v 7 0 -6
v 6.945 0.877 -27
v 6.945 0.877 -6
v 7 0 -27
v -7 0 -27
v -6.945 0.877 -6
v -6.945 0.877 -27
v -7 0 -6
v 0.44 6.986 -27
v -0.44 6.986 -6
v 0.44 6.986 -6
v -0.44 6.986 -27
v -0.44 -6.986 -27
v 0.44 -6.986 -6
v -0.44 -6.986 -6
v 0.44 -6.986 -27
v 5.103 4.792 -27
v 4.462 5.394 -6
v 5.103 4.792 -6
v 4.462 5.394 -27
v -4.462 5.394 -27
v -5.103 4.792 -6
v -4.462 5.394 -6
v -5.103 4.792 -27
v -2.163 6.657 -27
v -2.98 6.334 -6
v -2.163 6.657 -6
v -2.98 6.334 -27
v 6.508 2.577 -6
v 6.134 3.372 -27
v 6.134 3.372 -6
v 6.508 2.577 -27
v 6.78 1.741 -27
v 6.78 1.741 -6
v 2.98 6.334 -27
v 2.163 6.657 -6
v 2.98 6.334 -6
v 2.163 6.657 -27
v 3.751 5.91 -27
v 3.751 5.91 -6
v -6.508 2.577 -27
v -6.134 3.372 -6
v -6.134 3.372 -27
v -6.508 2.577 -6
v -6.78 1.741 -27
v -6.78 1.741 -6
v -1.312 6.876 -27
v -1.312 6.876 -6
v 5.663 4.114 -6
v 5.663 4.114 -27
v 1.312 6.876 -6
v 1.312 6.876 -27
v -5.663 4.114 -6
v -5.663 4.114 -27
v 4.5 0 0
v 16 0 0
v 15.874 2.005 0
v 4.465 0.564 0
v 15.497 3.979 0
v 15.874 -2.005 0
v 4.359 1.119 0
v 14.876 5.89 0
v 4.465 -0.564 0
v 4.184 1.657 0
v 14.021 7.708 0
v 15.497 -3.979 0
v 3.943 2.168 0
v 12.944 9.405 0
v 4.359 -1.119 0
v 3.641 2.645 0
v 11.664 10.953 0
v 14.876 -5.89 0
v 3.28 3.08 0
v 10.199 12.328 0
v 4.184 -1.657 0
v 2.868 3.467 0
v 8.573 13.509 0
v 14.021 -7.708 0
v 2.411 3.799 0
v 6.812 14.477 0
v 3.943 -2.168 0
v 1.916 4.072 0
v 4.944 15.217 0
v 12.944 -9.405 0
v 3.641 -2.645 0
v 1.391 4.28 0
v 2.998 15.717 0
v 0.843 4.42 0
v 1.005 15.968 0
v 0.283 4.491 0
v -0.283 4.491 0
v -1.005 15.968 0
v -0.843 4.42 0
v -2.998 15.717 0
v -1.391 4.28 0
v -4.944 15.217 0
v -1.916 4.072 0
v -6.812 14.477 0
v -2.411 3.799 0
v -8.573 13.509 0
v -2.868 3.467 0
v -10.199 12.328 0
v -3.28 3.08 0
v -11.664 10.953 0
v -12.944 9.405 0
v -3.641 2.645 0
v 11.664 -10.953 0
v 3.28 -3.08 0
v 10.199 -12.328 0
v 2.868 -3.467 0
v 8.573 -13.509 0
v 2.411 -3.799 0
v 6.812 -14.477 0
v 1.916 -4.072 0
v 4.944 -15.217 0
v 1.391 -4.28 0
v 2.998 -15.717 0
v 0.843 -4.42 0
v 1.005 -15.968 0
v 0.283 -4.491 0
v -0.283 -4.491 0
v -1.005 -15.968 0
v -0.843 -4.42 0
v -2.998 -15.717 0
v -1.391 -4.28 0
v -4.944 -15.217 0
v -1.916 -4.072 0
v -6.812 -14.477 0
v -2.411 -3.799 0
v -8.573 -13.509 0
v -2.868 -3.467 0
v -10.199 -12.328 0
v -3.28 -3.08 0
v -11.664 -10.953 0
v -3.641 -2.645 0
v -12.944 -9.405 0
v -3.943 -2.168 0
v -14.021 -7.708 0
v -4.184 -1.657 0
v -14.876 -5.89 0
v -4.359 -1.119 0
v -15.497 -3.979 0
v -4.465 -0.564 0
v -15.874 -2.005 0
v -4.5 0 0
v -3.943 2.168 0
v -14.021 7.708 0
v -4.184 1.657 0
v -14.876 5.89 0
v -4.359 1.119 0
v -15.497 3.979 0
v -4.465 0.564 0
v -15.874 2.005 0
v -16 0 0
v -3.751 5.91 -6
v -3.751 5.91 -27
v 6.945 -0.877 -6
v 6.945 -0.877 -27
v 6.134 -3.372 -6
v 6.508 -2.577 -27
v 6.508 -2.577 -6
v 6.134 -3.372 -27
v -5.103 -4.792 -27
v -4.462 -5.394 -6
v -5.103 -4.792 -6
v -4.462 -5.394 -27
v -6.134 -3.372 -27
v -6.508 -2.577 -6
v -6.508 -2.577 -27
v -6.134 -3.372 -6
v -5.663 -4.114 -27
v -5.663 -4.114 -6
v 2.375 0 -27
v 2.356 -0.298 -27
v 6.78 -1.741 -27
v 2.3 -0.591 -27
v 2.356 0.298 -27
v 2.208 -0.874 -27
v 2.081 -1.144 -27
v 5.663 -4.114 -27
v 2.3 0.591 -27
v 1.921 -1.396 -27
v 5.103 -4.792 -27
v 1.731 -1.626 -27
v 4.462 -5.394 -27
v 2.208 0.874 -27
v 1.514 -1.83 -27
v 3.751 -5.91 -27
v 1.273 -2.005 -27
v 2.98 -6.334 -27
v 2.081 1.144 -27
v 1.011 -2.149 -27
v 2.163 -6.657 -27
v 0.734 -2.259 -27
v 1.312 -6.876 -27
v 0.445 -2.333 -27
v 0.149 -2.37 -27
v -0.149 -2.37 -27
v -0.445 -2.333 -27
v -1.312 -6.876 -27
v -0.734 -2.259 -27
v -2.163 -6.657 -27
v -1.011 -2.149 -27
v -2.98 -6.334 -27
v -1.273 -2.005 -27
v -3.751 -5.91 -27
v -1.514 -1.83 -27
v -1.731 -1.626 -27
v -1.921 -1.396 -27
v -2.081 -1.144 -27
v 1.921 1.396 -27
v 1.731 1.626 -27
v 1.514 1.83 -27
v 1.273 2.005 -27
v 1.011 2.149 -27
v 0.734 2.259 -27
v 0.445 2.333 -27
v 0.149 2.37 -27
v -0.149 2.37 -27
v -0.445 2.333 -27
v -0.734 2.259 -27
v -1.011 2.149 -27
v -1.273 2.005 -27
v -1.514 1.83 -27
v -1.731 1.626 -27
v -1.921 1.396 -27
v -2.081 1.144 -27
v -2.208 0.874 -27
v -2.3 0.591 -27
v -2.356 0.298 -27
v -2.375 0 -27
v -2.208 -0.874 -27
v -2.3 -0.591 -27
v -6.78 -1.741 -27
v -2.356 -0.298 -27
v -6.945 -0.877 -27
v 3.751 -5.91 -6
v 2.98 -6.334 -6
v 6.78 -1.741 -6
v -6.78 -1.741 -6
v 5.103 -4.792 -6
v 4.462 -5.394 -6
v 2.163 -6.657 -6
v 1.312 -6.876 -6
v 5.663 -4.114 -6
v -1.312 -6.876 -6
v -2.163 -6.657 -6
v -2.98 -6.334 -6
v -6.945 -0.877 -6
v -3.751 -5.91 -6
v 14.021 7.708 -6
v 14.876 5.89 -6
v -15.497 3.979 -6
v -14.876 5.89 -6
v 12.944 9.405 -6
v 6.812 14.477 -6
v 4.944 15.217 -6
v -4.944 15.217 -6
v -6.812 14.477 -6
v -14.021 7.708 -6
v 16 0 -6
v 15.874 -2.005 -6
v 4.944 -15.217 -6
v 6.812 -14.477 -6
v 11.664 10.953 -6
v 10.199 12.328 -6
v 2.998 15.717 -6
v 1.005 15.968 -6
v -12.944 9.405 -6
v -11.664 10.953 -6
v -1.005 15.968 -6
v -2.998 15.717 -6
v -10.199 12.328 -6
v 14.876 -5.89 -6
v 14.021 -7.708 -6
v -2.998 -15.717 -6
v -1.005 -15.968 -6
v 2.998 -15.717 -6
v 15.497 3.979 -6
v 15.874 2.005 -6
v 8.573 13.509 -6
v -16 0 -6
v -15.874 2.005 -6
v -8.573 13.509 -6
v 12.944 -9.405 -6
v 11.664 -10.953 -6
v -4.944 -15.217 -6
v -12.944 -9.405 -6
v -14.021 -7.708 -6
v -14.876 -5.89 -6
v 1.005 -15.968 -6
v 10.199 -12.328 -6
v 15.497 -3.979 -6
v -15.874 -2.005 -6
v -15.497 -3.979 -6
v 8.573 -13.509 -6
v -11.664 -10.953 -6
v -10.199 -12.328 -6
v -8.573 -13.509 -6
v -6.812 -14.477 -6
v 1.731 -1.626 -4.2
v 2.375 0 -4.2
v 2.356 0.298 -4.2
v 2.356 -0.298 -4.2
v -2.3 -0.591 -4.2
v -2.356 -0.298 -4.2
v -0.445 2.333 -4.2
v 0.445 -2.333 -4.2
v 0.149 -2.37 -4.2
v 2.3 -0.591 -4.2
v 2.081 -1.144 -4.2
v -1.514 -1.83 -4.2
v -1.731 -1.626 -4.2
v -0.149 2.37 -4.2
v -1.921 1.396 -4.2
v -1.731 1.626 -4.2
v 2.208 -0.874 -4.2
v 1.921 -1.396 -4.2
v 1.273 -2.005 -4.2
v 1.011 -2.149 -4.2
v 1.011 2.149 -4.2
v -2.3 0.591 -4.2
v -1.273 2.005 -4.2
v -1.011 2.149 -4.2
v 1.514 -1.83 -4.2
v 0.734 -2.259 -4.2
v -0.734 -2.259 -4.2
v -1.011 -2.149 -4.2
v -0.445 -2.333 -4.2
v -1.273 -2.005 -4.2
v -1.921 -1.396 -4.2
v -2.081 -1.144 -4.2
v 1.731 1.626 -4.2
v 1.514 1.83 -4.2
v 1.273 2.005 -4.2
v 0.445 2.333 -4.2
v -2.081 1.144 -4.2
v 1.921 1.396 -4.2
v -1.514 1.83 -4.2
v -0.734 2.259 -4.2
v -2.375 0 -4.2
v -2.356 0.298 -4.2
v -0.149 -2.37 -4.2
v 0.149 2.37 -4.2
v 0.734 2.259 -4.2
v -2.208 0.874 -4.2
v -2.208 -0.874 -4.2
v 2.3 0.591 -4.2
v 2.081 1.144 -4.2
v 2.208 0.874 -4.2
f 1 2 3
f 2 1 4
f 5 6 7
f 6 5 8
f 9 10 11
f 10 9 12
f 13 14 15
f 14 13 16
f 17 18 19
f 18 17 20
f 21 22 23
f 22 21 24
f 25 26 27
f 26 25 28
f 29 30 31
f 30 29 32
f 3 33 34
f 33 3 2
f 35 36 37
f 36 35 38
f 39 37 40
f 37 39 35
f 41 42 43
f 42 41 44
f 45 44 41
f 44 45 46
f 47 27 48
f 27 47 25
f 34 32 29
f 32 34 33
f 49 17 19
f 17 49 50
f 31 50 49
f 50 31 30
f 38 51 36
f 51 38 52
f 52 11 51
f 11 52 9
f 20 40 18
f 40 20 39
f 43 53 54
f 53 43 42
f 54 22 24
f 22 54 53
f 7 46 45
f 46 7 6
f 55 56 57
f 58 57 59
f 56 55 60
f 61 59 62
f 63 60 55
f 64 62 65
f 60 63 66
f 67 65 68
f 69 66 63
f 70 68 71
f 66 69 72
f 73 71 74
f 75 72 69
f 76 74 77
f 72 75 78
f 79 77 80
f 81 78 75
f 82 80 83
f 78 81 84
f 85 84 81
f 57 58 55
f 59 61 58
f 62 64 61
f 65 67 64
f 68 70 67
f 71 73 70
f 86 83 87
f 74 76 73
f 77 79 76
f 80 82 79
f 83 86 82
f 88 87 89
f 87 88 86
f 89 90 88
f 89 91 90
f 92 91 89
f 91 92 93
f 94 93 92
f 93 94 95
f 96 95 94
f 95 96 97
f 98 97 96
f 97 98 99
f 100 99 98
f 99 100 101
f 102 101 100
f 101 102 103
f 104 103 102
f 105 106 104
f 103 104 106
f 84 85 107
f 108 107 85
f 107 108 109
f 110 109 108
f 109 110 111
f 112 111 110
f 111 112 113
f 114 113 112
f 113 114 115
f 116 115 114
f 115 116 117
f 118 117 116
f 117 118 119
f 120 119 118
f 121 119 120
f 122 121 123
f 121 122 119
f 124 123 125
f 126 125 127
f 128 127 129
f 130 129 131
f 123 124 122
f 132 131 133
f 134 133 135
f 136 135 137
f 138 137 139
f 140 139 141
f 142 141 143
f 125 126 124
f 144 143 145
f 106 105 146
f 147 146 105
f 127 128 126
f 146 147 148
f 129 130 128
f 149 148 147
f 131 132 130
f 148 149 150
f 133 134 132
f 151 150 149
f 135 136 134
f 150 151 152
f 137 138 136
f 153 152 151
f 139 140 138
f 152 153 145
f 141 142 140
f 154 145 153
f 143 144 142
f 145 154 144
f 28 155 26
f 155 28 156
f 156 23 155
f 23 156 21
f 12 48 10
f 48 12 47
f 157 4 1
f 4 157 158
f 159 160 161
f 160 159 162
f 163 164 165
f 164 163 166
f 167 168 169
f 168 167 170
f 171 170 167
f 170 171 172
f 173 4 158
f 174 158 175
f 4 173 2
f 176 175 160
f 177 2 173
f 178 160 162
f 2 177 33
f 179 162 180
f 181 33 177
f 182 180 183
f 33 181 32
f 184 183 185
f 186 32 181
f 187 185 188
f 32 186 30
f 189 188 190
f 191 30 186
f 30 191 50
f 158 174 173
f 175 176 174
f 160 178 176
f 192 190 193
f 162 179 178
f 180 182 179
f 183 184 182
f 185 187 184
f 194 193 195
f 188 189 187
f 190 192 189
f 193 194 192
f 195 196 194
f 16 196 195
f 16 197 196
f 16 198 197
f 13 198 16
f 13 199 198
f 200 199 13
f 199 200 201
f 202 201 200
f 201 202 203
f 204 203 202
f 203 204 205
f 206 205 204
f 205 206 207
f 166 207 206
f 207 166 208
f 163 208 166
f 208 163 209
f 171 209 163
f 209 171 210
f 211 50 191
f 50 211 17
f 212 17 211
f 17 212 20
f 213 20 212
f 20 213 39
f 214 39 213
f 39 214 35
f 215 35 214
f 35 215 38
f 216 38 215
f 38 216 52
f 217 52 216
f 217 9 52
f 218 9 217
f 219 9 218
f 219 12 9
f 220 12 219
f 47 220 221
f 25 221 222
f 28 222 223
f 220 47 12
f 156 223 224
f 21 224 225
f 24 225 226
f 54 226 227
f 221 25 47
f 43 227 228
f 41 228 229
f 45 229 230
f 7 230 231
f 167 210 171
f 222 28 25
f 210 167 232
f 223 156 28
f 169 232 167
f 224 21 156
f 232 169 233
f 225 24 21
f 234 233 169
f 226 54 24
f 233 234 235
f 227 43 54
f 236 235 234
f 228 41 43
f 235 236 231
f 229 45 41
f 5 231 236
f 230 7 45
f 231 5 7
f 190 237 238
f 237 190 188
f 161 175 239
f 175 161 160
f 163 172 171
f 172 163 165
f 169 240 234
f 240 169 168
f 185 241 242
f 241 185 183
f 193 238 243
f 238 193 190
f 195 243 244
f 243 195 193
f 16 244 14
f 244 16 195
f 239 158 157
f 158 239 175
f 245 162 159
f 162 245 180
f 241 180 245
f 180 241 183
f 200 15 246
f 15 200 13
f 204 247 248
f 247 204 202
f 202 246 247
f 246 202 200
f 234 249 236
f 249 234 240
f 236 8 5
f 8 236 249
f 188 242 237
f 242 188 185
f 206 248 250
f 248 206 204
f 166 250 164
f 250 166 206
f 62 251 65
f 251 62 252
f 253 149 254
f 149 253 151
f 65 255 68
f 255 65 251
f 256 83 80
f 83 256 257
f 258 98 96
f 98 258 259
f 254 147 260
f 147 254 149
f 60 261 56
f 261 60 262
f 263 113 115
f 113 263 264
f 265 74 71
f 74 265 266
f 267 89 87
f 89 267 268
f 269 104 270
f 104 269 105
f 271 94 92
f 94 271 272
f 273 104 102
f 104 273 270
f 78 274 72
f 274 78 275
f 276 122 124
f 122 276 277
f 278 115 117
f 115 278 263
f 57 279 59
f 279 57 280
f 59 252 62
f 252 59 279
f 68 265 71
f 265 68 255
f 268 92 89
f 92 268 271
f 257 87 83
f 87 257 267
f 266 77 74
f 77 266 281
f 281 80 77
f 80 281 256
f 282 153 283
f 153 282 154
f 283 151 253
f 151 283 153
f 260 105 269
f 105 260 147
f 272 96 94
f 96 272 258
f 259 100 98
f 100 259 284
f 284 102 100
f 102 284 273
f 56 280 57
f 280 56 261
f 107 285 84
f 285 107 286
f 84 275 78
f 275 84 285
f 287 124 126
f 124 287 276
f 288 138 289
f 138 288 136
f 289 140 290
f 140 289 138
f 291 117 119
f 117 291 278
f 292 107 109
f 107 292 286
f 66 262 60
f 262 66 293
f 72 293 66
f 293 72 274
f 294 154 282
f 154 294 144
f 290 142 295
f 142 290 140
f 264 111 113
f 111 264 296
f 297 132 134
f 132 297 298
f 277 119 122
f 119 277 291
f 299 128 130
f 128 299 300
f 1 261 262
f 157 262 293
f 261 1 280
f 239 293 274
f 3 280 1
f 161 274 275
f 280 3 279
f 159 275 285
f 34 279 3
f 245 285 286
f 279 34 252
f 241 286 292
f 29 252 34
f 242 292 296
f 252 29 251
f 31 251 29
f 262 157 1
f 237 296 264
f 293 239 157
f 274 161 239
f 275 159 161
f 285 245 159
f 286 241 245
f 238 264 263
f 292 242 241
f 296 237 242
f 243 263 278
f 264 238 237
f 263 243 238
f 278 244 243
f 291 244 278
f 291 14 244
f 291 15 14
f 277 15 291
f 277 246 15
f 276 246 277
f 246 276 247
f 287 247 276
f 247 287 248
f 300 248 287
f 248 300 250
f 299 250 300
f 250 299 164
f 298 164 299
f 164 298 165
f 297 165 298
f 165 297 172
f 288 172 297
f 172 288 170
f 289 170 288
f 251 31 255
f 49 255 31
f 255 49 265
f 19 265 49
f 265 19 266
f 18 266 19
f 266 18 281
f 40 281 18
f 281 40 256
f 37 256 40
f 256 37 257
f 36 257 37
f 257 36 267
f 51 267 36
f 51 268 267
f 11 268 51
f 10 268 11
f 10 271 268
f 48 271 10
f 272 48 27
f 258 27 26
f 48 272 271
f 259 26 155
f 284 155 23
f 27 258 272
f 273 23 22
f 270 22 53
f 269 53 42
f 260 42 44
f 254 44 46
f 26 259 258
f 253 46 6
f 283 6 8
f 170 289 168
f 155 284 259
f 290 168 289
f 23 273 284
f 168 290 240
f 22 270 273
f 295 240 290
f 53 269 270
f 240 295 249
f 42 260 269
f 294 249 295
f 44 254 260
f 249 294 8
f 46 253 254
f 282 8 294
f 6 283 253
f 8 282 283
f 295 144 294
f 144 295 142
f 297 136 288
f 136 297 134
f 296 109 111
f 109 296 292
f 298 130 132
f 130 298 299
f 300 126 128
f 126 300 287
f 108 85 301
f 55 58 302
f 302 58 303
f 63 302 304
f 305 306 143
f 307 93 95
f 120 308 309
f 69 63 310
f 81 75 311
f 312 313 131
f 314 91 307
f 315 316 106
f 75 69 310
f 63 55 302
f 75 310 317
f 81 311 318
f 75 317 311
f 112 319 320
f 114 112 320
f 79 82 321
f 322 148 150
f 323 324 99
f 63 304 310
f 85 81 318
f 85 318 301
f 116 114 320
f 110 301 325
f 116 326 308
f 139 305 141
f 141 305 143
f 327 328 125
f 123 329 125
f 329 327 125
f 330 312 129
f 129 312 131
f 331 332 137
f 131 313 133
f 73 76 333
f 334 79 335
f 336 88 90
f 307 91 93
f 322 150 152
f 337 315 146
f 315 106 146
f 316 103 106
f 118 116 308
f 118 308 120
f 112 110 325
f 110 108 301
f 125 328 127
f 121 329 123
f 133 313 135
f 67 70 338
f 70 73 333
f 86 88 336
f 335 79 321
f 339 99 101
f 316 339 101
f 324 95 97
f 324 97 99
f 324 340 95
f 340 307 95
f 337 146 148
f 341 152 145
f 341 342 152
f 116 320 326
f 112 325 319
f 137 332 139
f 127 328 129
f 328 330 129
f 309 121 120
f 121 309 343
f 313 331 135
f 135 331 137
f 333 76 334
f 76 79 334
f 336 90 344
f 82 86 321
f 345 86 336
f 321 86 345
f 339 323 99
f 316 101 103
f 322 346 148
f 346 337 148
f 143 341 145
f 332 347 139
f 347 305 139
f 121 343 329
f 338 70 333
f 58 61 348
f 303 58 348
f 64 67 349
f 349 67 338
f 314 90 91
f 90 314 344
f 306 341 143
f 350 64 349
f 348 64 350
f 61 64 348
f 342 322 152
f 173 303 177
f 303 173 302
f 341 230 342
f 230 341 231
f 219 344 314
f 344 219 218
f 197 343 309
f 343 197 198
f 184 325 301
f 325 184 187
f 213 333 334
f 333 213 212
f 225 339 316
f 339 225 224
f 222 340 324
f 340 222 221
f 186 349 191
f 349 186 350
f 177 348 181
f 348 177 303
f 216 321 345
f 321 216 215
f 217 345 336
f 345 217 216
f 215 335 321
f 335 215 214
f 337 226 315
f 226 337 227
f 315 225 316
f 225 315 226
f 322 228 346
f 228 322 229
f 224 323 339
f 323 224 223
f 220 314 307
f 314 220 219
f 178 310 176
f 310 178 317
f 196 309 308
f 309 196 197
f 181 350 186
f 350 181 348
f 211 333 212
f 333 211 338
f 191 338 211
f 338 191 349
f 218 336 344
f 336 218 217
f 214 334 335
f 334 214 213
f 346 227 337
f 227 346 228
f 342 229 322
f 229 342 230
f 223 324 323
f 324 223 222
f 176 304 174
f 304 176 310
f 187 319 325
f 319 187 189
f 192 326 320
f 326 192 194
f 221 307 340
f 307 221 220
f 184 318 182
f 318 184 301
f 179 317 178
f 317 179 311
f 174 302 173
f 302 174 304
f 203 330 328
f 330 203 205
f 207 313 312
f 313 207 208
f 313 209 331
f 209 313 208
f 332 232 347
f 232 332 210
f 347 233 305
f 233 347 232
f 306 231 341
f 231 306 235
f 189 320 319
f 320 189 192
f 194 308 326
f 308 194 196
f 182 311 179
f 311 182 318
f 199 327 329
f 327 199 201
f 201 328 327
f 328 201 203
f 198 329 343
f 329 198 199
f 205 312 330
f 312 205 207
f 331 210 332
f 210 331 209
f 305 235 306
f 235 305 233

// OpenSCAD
$fn = 50;


difference() {
	union() {
		translate(v = [0, 0, -27.0000000000]) {
			cylinder(h = 27, r = 7.0000000000);
		}
		translate(v = [0, 0, -6.0000000000]) {
			cylinder(h = 6, r = 16.0000000000);
		}
	}
	union() {
		translate(v = [0, 0, 0]) {
			rotate(a = [0, 0, 0]) {
				difference() {
					union() {
						#translate(v = [0, 0, -27.0000000000]) {
							cylinder(h = 27, r = 2.2500000000);
						}
						#translate(v = [0, 0, -4.2000000000]) {
							cylinder(h = 4.2000000000, r = 7.0000000000, r1 = 2.3750000000, r2 = 4.5000000000);
						}
						#translate(v = [0, 0, -27.0000000000]) {
							cylinder(h = 27, r = 2.3750000000);
						}
						#translate(v = [0, 0, -27.0000000000]) {
							cylinder(h = 27, r = 2.2500000000);
						}
					}
					union();
				}
			}
		}
	}
}
